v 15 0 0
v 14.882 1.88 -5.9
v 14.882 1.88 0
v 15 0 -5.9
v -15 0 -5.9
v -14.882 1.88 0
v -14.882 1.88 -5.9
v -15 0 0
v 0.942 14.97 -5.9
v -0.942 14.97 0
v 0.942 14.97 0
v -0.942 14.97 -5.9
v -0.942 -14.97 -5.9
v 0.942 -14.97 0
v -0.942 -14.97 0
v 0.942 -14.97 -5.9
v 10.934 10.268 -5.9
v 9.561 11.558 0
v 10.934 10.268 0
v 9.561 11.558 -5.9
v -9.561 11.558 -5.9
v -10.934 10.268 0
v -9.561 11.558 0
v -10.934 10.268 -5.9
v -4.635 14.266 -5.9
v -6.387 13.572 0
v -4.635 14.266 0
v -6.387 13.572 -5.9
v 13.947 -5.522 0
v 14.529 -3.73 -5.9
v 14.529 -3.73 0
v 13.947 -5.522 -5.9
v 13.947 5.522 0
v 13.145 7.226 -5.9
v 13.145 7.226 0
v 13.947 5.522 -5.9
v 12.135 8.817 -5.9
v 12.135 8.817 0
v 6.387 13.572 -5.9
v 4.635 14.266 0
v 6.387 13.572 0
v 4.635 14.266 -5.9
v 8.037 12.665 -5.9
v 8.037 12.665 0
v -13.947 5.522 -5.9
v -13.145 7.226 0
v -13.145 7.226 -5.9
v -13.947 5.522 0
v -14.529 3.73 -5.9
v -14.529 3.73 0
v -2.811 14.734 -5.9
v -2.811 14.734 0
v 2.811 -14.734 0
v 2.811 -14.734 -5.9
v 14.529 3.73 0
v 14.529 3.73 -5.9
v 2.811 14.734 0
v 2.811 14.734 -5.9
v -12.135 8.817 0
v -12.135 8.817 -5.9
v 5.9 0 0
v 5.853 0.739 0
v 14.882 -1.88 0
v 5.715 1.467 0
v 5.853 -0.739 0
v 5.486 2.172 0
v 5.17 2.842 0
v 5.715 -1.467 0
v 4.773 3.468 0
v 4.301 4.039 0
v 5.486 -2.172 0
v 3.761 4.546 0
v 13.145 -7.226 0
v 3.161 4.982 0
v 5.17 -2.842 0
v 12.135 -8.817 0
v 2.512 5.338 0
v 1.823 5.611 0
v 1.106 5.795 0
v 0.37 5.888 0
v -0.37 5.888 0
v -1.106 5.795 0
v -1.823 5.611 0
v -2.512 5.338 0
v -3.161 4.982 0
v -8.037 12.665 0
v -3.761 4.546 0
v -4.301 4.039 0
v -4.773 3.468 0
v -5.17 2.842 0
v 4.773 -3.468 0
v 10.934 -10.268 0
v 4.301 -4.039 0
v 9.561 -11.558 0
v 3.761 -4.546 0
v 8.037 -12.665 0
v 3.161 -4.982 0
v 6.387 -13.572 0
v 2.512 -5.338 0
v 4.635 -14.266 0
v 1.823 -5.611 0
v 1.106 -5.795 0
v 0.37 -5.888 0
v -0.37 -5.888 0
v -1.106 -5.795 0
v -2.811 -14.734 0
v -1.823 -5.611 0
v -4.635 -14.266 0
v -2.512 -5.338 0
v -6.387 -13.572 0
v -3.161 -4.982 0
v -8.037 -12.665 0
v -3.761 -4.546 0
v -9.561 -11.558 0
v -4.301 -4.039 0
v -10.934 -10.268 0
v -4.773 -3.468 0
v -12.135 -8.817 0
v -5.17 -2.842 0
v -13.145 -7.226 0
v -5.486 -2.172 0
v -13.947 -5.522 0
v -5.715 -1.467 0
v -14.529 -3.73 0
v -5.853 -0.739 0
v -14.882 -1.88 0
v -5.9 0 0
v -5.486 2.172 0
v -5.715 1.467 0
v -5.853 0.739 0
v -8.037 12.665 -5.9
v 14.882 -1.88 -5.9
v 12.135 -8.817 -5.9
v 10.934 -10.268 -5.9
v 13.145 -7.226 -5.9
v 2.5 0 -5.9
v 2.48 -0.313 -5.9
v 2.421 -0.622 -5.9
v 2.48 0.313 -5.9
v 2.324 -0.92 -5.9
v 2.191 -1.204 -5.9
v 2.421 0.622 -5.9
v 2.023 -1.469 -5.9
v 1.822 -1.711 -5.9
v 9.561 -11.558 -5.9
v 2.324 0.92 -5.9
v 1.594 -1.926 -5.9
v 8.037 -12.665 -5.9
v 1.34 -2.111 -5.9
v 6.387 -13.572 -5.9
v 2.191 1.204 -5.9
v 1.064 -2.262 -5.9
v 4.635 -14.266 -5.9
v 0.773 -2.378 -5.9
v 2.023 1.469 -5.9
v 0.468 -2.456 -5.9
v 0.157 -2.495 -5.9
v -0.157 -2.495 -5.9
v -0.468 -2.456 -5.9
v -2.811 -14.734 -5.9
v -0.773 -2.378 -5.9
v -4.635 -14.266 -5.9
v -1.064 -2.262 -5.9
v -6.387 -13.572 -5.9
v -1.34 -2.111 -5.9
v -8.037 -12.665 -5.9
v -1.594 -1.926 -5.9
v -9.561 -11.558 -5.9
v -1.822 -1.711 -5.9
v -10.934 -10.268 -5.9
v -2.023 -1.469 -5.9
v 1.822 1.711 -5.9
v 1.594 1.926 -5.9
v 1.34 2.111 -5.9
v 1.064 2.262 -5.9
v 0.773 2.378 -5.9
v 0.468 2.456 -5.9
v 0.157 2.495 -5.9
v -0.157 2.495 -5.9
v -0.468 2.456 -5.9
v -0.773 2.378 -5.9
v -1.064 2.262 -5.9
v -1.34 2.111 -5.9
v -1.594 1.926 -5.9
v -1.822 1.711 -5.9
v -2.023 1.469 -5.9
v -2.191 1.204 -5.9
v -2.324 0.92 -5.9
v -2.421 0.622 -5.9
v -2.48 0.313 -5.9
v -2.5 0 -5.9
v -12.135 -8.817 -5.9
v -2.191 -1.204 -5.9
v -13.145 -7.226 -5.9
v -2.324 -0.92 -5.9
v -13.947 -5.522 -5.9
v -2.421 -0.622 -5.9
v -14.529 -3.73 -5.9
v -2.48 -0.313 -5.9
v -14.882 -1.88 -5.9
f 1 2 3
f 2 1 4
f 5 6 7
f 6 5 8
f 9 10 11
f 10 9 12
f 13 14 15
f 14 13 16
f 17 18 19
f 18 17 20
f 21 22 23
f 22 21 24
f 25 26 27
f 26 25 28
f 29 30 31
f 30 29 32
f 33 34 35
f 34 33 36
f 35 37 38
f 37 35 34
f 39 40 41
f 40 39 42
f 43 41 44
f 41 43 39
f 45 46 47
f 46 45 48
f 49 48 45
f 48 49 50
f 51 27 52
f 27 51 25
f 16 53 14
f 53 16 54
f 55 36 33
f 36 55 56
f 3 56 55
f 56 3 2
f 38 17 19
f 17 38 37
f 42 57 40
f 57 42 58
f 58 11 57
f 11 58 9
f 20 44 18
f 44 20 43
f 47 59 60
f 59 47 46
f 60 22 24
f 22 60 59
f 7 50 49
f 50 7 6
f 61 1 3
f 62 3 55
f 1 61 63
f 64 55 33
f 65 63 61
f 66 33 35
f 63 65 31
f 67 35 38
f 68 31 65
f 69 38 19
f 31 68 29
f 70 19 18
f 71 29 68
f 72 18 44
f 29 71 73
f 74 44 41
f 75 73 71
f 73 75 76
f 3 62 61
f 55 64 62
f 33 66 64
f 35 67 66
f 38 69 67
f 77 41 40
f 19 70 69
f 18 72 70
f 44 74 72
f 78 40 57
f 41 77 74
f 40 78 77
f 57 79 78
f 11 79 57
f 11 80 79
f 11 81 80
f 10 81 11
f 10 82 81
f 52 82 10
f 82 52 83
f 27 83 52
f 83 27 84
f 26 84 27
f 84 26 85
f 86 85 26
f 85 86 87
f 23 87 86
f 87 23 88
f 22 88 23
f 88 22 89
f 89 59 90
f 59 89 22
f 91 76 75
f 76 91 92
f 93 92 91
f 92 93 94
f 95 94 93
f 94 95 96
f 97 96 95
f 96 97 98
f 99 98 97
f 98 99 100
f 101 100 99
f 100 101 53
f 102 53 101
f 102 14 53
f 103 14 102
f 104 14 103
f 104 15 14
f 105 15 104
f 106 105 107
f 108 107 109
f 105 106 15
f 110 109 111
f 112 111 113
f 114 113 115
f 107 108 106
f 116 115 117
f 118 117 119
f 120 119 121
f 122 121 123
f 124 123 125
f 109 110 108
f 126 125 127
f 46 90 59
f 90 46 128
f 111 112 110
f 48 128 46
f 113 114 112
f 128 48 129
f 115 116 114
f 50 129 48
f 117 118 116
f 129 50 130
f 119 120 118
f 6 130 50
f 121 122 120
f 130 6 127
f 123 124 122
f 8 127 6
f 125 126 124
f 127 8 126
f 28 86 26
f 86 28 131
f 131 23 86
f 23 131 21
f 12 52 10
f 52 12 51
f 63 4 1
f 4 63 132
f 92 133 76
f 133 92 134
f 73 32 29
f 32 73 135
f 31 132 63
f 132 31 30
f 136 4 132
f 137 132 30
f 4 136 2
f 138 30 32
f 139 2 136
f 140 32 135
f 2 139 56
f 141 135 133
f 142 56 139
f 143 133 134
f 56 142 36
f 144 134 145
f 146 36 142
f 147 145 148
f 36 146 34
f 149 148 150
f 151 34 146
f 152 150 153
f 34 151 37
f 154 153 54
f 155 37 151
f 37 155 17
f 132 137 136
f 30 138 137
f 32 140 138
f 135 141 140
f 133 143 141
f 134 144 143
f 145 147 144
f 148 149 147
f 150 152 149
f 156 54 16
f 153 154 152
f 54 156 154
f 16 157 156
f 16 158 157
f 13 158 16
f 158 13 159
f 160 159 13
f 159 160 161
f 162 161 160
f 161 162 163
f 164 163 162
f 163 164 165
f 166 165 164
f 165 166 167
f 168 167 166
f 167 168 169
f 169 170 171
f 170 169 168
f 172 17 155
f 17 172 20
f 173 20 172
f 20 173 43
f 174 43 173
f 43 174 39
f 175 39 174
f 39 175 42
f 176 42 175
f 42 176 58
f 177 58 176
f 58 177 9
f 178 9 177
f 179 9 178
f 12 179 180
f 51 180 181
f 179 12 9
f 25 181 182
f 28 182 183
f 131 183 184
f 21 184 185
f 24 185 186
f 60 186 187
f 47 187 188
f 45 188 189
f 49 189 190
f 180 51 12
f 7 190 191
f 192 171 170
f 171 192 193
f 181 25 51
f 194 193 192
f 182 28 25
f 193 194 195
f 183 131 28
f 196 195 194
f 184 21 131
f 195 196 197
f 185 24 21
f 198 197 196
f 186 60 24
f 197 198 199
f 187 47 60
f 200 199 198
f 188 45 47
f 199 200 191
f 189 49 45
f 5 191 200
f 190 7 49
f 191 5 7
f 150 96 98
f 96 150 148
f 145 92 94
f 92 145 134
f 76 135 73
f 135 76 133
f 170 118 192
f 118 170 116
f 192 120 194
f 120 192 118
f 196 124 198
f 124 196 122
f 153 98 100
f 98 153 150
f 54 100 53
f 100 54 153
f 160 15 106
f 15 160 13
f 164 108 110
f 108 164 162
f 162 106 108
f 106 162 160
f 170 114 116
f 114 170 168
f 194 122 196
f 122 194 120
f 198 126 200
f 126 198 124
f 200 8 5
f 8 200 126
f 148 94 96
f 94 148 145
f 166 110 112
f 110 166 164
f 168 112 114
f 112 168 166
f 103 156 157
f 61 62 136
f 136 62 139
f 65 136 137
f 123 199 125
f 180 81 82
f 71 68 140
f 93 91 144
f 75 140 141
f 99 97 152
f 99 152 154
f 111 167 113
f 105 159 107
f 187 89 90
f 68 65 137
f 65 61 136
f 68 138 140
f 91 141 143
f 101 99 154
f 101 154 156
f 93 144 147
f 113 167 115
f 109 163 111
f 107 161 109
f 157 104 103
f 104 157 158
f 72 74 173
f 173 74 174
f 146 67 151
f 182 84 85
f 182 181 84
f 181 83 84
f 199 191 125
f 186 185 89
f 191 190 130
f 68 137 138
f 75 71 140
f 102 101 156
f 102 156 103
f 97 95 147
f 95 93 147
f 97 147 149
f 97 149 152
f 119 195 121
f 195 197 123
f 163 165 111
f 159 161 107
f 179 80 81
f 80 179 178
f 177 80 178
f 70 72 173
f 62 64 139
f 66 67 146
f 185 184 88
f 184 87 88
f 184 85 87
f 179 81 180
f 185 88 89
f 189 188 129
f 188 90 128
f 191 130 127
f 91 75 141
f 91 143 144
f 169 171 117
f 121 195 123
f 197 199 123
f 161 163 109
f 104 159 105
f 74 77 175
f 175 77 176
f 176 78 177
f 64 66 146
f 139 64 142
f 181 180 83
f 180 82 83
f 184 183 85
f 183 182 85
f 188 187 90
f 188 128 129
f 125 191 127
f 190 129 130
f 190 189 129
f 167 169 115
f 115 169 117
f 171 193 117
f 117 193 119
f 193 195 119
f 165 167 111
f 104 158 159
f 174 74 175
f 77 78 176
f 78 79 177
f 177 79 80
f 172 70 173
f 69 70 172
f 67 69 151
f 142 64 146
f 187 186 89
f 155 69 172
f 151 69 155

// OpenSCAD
$fn = 50;


difference() {
	union() {
		translate(v = [0, 0, -5.9000000000]) {
			cylinder(h = 5.9000000000, r = 15.0000000000);
		}
		translate(v = [0, 0, -5.9000000000]) {
			cylinder(h = 5.9000000000, r = 2.8750000000);
		}
	}
	union() {
		translate(v = [0, 0, 0]) {
			rotate(a = [0, 0, 0]) {
				difference() {
					union() {
						#translate(v = [0, 0, -5.9000000000]) {
							cylinder(h = 5.9000000000, r = 2.2500000000);
						}
						#translate(v = [0, 0, -5.9000000000]) {
							cylinder(h = 5.9000000000, r1 = 2.5000000000, r2 = 5.9000000000);
						}
						#translate(v = [0, 0, -5.9000000000]) {
							cylinder(h = 5.9000000000, r = 2.5000000000);
						}
						#translate(v = [0, 0, -5.9000000000]) {
							cylinder(h = 5.9000000000, r = 2.2500000000);
						}
					}
					union();
				}
			}
		}
	}
}
